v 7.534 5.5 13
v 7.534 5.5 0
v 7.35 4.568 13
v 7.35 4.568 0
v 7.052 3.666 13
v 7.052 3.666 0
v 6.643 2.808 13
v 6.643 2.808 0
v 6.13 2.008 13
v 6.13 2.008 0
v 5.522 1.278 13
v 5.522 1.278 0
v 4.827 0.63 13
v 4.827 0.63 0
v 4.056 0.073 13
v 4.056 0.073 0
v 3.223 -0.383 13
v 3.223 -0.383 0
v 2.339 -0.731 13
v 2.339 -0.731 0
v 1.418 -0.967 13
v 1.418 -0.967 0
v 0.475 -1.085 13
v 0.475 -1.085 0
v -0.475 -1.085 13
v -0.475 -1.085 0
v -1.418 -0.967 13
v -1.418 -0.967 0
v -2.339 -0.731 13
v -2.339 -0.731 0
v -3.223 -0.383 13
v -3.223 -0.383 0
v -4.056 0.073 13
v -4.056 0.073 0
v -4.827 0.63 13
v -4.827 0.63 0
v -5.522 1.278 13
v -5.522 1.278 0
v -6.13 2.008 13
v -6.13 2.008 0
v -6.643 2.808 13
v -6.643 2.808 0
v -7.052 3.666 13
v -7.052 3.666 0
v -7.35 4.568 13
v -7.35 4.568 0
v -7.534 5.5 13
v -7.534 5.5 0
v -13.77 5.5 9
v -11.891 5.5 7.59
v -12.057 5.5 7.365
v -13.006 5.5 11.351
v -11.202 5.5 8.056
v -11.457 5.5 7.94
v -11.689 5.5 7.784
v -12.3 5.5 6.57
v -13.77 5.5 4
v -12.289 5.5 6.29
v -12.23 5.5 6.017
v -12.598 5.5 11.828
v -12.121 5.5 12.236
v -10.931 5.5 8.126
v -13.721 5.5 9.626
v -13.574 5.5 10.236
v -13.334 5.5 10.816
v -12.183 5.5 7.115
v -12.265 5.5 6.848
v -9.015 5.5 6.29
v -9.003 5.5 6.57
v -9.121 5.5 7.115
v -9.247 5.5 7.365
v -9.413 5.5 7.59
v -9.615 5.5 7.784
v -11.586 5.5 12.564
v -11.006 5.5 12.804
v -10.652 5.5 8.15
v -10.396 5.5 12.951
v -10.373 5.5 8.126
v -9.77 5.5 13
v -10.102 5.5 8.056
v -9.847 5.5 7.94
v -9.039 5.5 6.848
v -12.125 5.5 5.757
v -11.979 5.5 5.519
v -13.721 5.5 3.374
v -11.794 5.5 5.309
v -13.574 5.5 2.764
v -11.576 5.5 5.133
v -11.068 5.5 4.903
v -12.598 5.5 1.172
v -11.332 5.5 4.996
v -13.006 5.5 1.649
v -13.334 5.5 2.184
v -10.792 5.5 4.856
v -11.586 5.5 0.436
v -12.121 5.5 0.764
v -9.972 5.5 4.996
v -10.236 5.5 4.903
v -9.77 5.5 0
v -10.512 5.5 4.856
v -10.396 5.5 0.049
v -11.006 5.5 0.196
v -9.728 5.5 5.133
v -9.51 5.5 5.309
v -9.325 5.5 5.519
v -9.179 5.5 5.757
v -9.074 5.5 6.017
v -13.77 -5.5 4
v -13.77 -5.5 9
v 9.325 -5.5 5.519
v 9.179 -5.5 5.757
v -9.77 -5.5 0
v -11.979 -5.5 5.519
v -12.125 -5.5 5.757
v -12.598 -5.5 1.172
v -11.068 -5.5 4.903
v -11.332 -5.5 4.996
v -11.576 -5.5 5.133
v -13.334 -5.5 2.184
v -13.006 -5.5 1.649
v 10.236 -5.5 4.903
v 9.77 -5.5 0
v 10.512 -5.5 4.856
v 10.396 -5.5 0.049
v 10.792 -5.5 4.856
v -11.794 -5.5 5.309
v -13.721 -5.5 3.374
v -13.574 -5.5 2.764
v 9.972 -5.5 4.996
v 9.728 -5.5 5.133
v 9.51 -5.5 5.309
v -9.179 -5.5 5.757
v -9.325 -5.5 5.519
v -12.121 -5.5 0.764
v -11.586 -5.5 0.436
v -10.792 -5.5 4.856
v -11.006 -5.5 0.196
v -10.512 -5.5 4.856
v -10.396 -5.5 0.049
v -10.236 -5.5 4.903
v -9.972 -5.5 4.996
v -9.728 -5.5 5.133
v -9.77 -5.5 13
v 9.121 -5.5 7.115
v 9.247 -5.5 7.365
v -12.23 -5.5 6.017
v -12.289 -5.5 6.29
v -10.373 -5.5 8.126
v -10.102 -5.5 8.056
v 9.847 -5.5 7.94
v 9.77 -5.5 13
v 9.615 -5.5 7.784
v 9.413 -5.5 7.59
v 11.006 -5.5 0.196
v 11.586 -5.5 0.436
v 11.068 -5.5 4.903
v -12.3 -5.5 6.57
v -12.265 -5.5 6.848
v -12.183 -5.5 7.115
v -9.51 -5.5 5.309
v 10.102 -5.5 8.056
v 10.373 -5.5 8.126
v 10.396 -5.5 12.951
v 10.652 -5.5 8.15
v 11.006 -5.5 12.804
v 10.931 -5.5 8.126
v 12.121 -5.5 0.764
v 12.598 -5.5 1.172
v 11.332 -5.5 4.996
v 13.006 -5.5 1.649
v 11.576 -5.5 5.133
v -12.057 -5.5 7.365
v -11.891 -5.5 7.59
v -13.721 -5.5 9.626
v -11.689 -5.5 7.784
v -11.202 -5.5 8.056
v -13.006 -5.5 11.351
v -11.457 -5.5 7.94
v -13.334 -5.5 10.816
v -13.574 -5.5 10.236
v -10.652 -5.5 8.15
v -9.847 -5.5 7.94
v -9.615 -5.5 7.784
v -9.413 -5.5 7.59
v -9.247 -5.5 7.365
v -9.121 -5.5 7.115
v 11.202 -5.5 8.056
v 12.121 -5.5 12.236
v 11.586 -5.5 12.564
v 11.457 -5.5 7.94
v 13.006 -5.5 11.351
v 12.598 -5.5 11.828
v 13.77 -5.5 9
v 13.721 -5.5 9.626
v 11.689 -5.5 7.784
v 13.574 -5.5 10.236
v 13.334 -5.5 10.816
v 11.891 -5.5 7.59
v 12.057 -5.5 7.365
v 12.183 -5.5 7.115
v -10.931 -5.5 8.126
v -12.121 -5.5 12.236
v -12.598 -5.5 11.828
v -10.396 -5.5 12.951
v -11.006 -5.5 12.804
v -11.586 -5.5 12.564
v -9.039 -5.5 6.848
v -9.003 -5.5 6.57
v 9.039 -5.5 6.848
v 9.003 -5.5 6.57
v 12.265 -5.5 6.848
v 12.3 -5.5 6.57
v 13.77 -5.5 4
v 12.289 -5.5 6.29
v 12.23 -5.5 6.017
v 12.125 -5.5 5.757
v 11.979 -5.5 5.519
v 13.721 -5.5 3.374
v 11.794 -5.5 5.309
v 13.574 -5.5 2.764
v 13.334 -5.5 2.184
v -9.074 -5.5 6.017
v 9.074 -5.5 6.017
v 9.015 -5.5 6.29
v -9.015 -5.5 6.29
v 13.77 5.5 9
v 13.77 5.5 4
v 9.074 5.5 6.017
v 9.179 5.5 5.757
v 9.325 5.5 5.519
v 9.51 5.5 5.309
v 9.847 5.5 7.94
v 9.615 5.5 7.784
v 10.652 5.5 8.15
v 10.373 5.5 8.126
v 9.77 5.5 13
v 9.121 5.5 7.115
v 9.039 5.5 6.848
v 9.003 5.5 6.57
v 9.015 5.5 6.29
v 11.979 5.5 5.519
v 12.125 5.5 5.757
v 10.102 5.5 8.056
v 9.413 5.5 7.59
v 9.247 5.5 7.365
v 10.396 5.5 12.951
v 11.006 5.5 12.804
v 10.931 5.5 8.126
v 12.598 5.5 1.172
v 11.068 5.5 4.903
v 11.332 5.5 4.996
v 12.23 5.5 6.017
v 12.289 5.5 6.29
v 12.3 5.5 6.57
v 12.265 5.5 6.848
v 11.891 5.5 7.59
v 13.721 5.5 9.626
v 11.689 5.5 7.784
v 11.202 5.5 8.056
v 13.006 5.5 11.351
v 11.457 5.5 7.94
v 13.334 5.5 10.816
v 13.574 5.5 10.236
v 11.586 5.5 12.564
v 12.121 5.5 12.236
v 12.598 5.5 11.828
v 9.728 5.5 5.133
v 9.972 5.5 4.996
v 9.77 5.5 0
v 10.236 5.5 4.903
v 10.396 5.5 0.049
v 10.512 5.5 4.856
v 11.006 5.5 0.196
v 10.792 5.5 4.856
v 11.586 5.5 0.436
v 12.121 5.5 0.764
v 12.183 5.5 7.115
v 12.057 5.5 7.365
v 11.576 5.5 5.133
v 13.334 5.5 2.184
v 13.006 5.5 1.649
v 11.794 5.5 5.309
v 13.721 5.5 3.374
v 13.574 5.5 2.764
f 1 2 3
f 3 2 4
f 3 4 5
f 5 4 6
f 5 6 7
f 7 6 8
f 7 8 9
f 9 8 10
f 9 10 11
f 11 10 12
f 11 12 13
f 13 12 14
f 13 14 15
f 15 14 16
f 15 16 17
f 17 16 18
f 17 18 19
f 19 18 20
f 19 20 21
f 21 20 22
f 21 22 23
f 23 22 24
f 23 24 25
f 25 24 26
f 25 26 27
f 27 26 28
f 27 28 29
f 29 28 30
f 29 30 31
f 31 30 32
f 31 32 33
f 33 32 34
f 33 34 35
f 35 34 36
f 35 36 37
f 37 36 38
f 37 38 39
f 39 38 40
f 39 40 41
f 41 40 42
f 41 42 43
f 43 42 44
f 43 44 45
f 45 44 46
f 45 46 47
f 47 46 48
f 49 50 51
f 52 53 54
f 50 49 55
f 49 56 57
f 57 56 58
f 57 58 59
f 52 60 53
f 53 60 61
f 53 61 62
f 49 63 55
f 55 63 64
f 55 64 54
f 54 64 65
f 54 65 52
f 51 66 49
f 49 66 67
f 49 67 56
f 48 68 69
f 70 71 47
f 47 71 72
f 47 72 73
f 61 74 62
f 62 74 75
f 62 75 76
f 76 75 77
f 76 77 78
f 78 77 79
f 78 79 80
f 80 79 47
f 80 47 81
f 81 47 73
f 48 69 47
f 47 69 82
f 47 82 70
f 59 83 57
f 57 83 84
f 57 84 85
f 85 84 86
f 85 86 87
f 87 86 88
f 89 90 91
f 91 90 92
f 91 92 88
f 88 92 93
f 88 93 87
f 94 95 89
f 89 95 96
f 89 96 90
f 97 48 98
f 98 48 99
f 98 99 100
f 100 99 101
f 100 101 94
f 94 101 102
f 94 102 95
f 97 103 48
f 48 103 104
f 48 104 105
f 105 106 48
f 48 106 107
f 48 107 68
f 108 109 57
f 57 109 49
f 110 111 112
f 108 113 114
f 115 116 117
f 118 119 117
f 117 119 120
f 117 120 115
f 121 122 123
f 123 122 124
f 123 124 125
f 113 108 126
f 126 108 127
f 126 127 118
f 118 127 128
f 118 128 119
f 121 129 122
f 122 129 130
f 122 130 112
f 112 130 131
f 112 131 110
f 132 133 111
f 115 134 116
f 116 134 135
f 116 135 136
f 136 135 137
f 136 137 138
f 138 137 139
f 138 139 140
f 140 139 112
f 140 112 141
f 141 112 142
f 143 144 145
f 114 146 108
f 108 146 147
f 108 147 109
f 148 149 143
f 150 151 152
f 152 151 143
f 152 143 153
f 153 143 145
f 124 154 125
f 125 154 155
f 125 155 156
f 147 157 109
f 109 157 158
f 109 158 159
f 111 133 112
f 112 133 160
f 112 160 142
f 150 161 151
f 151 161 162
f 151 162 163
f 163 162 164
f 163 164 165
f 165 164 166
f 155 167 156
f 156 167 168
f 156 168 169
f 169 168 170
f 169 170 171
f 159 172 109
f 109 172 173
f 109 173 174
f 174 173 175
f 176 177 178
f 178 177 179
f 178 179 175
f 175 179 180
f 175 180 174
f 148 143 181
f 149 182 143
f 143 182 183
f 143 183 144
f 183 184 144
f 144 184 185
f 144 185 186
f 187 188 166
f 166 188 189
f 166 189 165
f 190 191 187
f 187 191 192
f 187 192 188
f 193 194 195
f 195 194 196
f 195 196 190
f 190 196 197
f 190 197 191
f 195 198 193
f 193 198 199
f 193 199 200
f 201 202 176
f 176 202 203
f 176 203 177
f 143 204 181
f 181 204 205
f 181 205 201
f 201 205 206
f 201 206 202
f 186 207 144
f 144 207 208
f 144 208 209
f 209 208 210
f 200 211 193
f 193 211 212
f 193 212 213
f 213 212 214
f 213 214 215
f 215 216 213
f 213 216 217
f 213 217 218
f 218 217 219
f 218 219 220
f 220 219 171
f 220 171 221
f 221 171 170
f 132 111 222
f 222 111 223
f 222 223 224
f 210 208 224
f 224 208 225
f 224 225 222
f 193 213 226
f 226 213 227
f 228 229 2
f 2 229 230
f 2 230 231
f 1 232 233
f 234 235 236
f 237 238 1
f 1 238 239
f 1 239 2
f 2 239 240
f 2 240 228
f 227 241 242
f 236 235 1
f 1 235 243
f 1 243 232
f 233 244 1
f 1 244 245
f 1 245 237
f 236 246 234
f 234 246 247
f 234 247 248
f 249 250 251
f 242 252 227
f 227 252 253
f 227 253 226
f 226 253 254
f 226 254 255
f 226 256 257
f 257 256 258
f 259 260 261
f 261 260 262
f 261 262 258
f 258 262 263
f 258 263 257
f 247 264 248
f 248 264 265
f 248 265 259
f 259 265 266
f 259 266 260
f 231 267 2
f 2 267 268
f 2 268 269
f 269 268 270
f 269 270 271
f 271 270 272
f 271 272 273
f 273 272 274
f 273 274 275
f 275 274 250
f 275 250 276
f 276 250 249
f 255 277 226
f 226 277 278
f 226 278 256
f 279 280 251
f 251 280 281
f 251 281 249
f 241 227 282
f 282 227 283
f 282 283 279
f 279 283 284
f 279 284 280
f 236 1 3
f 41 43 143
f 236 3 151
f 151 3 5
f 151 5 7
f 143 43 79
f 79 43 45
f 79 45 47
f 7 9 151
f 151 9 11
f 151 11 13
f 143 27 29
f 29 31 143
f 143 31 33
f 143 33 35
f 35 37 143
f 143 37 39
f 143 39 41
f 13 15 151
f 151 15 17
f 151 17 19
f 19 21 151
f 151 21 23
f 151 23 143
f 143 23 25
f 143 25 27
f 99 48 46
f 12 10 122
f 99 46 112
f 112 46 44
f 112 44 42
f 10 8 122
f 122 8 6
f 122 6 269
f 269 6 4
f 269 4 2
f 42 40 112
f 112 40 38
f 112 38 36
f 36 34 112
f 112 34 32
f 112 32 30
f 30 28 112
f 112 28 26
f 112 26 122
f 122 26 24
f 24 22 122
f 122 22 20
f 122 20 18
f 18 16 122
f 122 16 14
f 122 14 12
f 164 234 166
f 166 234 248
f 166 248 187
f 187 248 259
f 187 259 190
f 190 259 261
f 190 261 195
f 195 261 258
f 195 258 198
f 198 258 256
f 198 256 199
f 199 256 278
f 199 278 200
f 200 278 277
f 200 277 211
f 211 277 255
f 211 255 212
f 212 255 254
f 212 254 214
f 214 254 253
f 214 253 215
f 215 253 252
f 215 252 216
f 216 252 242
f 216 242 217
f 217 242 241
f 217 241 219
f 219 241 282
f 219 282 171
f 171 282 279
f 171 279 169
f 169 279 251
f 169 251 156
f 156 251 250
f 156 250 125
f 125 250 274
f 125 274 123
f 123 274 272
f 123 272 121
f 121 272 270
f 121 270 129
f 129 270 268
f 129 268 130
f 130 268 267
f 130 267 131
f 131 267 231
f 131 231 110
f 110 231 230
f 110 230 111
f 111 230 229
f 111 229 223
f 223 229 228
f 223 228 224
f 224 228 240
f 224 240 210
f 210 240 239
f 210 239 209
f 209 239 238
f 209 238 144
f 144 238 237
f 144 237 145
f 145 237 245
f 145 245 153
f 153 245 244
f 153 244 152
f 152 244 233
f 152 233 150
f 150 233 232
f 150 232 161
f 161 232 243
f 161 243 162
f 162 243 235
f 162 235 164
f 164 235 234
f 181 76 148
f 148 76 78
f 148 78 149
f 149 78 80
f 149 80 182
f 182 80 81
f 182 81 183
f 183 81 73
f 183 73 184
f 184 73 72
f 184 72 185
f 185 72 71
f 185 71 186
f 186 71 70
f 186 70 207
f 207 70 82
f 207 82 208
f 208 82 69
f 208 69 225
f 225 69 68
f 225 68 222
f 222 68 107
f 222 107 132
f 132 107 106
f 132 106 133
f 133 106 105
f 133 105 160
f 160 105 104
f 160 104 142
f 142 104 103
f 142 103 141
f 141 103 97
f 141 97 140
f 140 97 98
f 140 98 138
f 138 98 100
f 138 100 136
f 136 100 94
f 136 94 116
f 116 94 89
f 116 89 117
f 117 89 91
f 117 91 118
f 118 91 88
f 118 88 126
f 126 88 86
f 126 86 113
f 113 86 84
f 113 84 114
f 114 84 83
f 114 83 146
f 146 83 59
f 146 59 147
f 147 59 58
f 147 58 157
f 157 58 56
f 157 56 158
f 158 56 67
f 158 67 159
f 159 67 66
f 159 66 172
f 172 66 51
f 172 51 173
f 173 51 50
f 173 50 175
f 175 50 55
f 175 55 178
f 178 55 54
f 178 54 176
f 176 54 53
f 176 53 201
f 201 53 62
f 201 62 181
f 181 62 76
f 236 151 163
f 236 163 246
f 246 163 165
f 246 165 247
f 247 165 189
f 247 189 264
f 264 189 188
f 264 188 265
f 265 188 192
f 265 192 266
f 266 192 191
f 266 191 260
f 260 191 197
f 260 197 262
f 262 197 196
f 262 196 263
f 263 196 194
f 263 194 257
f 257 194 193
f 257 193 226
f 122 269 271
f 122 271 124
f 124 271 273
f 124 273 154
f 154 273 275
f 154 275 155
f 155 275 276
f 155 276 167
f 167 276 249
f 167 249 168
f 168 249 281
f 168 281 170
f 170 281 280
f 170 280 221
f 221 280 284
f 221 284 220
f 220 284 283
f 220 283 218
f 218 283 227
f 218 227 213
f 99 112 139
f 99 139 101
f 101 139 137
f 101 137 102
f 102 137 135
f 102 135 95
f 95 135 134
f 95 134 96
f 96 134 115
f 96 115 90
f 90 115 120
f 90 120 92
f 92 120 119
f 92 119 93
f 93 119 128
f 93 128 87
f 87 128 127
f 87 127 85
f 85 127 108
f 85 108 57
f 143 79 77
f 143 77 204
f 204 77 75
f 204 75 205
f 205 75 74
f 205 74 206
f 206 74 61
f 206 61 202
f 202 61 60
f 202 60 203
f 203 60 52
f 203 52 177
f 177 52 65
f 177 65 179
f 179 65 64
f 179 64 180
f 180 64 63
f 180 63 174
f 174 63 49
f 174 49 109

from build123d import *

# Parameters (mm, degrees)
BOSS_EXTRUDE1_DEPTH = 13
SKETCH2_R           = 1.65
CUT_EXTRUDE1_DEPTH  = 22.90006621
FILLET2_R           = 4


with BuildPart() as part:
    # Sketch1 → Boss-Extrude1 (new body)
    with BuildSketch(Plane.XY):
        with BuildLine():
            Line((-13.77, 5.5), (-13.77, -5.5))
            Line((-13.77, -5.5), (13.77, -5.5))
            Line((13.77, -5.5), (13.77, 5.5))
            Line((13.77, 5.5), (7.533923281, 5.5))
            ThreePointArc((7.533923281, 5.5), (0, -1.1), (-7.533923281, 5.5))
            Line((-7.533923281, 5.5), (-13.77, 5.5))
        make_face()
    extrude(amount=BOSS_EXTRUDE1_DEPTH)

    # Sketch2 → Cut-Extrude1 (cut, through all)
    with BuildSketch(Plane(origin=(0, 5.5, 0), x_dir=(1, 0, 0), z_dir=(0, 1, 0))):
        with Locations(Location((-10.65196164, -6.5, 0), (0, 0, 270))):
            Circle(SKETCH2_R)
        with Locations(Location((10.65196164, -6.5, 0), (0, 0, 270))):
            Circle(SKETCH2_R)
    extrude(amount=-CUT_EXTRUDE1_DEPTH, mode=Mode.SUBTRACT)

    # Fillet2
    fillet2_edges = [part.edges().sort_by_distance(p)[0] for p in [
        (-13.77, 0, 13),
        (13.77, 0, 13),
        (13.77, 0, 0),
        (-13.77, 0, 0),
    ]]
    fillet(fillet2_edges, radius=FILLET2_R)


solid = part.part
